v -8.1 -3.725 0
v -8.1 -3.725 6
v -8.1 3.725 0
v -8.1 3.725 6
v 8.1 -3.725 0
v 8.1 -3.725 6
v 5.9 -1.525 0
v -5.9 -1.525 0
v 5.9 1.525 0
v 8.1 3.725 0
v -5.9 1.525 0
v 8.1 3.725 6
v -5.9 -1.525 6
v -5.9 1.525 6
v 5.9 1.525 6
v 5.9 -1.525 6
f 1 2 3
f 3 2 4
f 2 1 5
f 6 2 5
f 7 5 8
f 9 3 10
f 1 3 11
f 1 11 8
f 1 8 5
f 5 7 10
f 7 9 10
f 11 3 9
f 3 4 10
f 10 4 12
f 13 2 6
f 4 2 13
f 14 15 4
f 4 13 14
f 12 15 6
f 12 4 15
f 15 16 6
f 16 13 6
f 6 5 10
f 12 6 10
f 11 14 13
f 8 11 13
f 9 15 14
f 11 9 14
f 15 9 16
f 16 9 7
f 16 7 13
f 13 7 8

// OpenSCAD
w = 11.8;
d = 3.05;
h = 6;
padding = 2.2;

translate([0, 0, h/2])
difference() {
	cube([w + 2*padding, d + 2*padding, h], center=true);
	cube([w, d, h], center=true);
}
